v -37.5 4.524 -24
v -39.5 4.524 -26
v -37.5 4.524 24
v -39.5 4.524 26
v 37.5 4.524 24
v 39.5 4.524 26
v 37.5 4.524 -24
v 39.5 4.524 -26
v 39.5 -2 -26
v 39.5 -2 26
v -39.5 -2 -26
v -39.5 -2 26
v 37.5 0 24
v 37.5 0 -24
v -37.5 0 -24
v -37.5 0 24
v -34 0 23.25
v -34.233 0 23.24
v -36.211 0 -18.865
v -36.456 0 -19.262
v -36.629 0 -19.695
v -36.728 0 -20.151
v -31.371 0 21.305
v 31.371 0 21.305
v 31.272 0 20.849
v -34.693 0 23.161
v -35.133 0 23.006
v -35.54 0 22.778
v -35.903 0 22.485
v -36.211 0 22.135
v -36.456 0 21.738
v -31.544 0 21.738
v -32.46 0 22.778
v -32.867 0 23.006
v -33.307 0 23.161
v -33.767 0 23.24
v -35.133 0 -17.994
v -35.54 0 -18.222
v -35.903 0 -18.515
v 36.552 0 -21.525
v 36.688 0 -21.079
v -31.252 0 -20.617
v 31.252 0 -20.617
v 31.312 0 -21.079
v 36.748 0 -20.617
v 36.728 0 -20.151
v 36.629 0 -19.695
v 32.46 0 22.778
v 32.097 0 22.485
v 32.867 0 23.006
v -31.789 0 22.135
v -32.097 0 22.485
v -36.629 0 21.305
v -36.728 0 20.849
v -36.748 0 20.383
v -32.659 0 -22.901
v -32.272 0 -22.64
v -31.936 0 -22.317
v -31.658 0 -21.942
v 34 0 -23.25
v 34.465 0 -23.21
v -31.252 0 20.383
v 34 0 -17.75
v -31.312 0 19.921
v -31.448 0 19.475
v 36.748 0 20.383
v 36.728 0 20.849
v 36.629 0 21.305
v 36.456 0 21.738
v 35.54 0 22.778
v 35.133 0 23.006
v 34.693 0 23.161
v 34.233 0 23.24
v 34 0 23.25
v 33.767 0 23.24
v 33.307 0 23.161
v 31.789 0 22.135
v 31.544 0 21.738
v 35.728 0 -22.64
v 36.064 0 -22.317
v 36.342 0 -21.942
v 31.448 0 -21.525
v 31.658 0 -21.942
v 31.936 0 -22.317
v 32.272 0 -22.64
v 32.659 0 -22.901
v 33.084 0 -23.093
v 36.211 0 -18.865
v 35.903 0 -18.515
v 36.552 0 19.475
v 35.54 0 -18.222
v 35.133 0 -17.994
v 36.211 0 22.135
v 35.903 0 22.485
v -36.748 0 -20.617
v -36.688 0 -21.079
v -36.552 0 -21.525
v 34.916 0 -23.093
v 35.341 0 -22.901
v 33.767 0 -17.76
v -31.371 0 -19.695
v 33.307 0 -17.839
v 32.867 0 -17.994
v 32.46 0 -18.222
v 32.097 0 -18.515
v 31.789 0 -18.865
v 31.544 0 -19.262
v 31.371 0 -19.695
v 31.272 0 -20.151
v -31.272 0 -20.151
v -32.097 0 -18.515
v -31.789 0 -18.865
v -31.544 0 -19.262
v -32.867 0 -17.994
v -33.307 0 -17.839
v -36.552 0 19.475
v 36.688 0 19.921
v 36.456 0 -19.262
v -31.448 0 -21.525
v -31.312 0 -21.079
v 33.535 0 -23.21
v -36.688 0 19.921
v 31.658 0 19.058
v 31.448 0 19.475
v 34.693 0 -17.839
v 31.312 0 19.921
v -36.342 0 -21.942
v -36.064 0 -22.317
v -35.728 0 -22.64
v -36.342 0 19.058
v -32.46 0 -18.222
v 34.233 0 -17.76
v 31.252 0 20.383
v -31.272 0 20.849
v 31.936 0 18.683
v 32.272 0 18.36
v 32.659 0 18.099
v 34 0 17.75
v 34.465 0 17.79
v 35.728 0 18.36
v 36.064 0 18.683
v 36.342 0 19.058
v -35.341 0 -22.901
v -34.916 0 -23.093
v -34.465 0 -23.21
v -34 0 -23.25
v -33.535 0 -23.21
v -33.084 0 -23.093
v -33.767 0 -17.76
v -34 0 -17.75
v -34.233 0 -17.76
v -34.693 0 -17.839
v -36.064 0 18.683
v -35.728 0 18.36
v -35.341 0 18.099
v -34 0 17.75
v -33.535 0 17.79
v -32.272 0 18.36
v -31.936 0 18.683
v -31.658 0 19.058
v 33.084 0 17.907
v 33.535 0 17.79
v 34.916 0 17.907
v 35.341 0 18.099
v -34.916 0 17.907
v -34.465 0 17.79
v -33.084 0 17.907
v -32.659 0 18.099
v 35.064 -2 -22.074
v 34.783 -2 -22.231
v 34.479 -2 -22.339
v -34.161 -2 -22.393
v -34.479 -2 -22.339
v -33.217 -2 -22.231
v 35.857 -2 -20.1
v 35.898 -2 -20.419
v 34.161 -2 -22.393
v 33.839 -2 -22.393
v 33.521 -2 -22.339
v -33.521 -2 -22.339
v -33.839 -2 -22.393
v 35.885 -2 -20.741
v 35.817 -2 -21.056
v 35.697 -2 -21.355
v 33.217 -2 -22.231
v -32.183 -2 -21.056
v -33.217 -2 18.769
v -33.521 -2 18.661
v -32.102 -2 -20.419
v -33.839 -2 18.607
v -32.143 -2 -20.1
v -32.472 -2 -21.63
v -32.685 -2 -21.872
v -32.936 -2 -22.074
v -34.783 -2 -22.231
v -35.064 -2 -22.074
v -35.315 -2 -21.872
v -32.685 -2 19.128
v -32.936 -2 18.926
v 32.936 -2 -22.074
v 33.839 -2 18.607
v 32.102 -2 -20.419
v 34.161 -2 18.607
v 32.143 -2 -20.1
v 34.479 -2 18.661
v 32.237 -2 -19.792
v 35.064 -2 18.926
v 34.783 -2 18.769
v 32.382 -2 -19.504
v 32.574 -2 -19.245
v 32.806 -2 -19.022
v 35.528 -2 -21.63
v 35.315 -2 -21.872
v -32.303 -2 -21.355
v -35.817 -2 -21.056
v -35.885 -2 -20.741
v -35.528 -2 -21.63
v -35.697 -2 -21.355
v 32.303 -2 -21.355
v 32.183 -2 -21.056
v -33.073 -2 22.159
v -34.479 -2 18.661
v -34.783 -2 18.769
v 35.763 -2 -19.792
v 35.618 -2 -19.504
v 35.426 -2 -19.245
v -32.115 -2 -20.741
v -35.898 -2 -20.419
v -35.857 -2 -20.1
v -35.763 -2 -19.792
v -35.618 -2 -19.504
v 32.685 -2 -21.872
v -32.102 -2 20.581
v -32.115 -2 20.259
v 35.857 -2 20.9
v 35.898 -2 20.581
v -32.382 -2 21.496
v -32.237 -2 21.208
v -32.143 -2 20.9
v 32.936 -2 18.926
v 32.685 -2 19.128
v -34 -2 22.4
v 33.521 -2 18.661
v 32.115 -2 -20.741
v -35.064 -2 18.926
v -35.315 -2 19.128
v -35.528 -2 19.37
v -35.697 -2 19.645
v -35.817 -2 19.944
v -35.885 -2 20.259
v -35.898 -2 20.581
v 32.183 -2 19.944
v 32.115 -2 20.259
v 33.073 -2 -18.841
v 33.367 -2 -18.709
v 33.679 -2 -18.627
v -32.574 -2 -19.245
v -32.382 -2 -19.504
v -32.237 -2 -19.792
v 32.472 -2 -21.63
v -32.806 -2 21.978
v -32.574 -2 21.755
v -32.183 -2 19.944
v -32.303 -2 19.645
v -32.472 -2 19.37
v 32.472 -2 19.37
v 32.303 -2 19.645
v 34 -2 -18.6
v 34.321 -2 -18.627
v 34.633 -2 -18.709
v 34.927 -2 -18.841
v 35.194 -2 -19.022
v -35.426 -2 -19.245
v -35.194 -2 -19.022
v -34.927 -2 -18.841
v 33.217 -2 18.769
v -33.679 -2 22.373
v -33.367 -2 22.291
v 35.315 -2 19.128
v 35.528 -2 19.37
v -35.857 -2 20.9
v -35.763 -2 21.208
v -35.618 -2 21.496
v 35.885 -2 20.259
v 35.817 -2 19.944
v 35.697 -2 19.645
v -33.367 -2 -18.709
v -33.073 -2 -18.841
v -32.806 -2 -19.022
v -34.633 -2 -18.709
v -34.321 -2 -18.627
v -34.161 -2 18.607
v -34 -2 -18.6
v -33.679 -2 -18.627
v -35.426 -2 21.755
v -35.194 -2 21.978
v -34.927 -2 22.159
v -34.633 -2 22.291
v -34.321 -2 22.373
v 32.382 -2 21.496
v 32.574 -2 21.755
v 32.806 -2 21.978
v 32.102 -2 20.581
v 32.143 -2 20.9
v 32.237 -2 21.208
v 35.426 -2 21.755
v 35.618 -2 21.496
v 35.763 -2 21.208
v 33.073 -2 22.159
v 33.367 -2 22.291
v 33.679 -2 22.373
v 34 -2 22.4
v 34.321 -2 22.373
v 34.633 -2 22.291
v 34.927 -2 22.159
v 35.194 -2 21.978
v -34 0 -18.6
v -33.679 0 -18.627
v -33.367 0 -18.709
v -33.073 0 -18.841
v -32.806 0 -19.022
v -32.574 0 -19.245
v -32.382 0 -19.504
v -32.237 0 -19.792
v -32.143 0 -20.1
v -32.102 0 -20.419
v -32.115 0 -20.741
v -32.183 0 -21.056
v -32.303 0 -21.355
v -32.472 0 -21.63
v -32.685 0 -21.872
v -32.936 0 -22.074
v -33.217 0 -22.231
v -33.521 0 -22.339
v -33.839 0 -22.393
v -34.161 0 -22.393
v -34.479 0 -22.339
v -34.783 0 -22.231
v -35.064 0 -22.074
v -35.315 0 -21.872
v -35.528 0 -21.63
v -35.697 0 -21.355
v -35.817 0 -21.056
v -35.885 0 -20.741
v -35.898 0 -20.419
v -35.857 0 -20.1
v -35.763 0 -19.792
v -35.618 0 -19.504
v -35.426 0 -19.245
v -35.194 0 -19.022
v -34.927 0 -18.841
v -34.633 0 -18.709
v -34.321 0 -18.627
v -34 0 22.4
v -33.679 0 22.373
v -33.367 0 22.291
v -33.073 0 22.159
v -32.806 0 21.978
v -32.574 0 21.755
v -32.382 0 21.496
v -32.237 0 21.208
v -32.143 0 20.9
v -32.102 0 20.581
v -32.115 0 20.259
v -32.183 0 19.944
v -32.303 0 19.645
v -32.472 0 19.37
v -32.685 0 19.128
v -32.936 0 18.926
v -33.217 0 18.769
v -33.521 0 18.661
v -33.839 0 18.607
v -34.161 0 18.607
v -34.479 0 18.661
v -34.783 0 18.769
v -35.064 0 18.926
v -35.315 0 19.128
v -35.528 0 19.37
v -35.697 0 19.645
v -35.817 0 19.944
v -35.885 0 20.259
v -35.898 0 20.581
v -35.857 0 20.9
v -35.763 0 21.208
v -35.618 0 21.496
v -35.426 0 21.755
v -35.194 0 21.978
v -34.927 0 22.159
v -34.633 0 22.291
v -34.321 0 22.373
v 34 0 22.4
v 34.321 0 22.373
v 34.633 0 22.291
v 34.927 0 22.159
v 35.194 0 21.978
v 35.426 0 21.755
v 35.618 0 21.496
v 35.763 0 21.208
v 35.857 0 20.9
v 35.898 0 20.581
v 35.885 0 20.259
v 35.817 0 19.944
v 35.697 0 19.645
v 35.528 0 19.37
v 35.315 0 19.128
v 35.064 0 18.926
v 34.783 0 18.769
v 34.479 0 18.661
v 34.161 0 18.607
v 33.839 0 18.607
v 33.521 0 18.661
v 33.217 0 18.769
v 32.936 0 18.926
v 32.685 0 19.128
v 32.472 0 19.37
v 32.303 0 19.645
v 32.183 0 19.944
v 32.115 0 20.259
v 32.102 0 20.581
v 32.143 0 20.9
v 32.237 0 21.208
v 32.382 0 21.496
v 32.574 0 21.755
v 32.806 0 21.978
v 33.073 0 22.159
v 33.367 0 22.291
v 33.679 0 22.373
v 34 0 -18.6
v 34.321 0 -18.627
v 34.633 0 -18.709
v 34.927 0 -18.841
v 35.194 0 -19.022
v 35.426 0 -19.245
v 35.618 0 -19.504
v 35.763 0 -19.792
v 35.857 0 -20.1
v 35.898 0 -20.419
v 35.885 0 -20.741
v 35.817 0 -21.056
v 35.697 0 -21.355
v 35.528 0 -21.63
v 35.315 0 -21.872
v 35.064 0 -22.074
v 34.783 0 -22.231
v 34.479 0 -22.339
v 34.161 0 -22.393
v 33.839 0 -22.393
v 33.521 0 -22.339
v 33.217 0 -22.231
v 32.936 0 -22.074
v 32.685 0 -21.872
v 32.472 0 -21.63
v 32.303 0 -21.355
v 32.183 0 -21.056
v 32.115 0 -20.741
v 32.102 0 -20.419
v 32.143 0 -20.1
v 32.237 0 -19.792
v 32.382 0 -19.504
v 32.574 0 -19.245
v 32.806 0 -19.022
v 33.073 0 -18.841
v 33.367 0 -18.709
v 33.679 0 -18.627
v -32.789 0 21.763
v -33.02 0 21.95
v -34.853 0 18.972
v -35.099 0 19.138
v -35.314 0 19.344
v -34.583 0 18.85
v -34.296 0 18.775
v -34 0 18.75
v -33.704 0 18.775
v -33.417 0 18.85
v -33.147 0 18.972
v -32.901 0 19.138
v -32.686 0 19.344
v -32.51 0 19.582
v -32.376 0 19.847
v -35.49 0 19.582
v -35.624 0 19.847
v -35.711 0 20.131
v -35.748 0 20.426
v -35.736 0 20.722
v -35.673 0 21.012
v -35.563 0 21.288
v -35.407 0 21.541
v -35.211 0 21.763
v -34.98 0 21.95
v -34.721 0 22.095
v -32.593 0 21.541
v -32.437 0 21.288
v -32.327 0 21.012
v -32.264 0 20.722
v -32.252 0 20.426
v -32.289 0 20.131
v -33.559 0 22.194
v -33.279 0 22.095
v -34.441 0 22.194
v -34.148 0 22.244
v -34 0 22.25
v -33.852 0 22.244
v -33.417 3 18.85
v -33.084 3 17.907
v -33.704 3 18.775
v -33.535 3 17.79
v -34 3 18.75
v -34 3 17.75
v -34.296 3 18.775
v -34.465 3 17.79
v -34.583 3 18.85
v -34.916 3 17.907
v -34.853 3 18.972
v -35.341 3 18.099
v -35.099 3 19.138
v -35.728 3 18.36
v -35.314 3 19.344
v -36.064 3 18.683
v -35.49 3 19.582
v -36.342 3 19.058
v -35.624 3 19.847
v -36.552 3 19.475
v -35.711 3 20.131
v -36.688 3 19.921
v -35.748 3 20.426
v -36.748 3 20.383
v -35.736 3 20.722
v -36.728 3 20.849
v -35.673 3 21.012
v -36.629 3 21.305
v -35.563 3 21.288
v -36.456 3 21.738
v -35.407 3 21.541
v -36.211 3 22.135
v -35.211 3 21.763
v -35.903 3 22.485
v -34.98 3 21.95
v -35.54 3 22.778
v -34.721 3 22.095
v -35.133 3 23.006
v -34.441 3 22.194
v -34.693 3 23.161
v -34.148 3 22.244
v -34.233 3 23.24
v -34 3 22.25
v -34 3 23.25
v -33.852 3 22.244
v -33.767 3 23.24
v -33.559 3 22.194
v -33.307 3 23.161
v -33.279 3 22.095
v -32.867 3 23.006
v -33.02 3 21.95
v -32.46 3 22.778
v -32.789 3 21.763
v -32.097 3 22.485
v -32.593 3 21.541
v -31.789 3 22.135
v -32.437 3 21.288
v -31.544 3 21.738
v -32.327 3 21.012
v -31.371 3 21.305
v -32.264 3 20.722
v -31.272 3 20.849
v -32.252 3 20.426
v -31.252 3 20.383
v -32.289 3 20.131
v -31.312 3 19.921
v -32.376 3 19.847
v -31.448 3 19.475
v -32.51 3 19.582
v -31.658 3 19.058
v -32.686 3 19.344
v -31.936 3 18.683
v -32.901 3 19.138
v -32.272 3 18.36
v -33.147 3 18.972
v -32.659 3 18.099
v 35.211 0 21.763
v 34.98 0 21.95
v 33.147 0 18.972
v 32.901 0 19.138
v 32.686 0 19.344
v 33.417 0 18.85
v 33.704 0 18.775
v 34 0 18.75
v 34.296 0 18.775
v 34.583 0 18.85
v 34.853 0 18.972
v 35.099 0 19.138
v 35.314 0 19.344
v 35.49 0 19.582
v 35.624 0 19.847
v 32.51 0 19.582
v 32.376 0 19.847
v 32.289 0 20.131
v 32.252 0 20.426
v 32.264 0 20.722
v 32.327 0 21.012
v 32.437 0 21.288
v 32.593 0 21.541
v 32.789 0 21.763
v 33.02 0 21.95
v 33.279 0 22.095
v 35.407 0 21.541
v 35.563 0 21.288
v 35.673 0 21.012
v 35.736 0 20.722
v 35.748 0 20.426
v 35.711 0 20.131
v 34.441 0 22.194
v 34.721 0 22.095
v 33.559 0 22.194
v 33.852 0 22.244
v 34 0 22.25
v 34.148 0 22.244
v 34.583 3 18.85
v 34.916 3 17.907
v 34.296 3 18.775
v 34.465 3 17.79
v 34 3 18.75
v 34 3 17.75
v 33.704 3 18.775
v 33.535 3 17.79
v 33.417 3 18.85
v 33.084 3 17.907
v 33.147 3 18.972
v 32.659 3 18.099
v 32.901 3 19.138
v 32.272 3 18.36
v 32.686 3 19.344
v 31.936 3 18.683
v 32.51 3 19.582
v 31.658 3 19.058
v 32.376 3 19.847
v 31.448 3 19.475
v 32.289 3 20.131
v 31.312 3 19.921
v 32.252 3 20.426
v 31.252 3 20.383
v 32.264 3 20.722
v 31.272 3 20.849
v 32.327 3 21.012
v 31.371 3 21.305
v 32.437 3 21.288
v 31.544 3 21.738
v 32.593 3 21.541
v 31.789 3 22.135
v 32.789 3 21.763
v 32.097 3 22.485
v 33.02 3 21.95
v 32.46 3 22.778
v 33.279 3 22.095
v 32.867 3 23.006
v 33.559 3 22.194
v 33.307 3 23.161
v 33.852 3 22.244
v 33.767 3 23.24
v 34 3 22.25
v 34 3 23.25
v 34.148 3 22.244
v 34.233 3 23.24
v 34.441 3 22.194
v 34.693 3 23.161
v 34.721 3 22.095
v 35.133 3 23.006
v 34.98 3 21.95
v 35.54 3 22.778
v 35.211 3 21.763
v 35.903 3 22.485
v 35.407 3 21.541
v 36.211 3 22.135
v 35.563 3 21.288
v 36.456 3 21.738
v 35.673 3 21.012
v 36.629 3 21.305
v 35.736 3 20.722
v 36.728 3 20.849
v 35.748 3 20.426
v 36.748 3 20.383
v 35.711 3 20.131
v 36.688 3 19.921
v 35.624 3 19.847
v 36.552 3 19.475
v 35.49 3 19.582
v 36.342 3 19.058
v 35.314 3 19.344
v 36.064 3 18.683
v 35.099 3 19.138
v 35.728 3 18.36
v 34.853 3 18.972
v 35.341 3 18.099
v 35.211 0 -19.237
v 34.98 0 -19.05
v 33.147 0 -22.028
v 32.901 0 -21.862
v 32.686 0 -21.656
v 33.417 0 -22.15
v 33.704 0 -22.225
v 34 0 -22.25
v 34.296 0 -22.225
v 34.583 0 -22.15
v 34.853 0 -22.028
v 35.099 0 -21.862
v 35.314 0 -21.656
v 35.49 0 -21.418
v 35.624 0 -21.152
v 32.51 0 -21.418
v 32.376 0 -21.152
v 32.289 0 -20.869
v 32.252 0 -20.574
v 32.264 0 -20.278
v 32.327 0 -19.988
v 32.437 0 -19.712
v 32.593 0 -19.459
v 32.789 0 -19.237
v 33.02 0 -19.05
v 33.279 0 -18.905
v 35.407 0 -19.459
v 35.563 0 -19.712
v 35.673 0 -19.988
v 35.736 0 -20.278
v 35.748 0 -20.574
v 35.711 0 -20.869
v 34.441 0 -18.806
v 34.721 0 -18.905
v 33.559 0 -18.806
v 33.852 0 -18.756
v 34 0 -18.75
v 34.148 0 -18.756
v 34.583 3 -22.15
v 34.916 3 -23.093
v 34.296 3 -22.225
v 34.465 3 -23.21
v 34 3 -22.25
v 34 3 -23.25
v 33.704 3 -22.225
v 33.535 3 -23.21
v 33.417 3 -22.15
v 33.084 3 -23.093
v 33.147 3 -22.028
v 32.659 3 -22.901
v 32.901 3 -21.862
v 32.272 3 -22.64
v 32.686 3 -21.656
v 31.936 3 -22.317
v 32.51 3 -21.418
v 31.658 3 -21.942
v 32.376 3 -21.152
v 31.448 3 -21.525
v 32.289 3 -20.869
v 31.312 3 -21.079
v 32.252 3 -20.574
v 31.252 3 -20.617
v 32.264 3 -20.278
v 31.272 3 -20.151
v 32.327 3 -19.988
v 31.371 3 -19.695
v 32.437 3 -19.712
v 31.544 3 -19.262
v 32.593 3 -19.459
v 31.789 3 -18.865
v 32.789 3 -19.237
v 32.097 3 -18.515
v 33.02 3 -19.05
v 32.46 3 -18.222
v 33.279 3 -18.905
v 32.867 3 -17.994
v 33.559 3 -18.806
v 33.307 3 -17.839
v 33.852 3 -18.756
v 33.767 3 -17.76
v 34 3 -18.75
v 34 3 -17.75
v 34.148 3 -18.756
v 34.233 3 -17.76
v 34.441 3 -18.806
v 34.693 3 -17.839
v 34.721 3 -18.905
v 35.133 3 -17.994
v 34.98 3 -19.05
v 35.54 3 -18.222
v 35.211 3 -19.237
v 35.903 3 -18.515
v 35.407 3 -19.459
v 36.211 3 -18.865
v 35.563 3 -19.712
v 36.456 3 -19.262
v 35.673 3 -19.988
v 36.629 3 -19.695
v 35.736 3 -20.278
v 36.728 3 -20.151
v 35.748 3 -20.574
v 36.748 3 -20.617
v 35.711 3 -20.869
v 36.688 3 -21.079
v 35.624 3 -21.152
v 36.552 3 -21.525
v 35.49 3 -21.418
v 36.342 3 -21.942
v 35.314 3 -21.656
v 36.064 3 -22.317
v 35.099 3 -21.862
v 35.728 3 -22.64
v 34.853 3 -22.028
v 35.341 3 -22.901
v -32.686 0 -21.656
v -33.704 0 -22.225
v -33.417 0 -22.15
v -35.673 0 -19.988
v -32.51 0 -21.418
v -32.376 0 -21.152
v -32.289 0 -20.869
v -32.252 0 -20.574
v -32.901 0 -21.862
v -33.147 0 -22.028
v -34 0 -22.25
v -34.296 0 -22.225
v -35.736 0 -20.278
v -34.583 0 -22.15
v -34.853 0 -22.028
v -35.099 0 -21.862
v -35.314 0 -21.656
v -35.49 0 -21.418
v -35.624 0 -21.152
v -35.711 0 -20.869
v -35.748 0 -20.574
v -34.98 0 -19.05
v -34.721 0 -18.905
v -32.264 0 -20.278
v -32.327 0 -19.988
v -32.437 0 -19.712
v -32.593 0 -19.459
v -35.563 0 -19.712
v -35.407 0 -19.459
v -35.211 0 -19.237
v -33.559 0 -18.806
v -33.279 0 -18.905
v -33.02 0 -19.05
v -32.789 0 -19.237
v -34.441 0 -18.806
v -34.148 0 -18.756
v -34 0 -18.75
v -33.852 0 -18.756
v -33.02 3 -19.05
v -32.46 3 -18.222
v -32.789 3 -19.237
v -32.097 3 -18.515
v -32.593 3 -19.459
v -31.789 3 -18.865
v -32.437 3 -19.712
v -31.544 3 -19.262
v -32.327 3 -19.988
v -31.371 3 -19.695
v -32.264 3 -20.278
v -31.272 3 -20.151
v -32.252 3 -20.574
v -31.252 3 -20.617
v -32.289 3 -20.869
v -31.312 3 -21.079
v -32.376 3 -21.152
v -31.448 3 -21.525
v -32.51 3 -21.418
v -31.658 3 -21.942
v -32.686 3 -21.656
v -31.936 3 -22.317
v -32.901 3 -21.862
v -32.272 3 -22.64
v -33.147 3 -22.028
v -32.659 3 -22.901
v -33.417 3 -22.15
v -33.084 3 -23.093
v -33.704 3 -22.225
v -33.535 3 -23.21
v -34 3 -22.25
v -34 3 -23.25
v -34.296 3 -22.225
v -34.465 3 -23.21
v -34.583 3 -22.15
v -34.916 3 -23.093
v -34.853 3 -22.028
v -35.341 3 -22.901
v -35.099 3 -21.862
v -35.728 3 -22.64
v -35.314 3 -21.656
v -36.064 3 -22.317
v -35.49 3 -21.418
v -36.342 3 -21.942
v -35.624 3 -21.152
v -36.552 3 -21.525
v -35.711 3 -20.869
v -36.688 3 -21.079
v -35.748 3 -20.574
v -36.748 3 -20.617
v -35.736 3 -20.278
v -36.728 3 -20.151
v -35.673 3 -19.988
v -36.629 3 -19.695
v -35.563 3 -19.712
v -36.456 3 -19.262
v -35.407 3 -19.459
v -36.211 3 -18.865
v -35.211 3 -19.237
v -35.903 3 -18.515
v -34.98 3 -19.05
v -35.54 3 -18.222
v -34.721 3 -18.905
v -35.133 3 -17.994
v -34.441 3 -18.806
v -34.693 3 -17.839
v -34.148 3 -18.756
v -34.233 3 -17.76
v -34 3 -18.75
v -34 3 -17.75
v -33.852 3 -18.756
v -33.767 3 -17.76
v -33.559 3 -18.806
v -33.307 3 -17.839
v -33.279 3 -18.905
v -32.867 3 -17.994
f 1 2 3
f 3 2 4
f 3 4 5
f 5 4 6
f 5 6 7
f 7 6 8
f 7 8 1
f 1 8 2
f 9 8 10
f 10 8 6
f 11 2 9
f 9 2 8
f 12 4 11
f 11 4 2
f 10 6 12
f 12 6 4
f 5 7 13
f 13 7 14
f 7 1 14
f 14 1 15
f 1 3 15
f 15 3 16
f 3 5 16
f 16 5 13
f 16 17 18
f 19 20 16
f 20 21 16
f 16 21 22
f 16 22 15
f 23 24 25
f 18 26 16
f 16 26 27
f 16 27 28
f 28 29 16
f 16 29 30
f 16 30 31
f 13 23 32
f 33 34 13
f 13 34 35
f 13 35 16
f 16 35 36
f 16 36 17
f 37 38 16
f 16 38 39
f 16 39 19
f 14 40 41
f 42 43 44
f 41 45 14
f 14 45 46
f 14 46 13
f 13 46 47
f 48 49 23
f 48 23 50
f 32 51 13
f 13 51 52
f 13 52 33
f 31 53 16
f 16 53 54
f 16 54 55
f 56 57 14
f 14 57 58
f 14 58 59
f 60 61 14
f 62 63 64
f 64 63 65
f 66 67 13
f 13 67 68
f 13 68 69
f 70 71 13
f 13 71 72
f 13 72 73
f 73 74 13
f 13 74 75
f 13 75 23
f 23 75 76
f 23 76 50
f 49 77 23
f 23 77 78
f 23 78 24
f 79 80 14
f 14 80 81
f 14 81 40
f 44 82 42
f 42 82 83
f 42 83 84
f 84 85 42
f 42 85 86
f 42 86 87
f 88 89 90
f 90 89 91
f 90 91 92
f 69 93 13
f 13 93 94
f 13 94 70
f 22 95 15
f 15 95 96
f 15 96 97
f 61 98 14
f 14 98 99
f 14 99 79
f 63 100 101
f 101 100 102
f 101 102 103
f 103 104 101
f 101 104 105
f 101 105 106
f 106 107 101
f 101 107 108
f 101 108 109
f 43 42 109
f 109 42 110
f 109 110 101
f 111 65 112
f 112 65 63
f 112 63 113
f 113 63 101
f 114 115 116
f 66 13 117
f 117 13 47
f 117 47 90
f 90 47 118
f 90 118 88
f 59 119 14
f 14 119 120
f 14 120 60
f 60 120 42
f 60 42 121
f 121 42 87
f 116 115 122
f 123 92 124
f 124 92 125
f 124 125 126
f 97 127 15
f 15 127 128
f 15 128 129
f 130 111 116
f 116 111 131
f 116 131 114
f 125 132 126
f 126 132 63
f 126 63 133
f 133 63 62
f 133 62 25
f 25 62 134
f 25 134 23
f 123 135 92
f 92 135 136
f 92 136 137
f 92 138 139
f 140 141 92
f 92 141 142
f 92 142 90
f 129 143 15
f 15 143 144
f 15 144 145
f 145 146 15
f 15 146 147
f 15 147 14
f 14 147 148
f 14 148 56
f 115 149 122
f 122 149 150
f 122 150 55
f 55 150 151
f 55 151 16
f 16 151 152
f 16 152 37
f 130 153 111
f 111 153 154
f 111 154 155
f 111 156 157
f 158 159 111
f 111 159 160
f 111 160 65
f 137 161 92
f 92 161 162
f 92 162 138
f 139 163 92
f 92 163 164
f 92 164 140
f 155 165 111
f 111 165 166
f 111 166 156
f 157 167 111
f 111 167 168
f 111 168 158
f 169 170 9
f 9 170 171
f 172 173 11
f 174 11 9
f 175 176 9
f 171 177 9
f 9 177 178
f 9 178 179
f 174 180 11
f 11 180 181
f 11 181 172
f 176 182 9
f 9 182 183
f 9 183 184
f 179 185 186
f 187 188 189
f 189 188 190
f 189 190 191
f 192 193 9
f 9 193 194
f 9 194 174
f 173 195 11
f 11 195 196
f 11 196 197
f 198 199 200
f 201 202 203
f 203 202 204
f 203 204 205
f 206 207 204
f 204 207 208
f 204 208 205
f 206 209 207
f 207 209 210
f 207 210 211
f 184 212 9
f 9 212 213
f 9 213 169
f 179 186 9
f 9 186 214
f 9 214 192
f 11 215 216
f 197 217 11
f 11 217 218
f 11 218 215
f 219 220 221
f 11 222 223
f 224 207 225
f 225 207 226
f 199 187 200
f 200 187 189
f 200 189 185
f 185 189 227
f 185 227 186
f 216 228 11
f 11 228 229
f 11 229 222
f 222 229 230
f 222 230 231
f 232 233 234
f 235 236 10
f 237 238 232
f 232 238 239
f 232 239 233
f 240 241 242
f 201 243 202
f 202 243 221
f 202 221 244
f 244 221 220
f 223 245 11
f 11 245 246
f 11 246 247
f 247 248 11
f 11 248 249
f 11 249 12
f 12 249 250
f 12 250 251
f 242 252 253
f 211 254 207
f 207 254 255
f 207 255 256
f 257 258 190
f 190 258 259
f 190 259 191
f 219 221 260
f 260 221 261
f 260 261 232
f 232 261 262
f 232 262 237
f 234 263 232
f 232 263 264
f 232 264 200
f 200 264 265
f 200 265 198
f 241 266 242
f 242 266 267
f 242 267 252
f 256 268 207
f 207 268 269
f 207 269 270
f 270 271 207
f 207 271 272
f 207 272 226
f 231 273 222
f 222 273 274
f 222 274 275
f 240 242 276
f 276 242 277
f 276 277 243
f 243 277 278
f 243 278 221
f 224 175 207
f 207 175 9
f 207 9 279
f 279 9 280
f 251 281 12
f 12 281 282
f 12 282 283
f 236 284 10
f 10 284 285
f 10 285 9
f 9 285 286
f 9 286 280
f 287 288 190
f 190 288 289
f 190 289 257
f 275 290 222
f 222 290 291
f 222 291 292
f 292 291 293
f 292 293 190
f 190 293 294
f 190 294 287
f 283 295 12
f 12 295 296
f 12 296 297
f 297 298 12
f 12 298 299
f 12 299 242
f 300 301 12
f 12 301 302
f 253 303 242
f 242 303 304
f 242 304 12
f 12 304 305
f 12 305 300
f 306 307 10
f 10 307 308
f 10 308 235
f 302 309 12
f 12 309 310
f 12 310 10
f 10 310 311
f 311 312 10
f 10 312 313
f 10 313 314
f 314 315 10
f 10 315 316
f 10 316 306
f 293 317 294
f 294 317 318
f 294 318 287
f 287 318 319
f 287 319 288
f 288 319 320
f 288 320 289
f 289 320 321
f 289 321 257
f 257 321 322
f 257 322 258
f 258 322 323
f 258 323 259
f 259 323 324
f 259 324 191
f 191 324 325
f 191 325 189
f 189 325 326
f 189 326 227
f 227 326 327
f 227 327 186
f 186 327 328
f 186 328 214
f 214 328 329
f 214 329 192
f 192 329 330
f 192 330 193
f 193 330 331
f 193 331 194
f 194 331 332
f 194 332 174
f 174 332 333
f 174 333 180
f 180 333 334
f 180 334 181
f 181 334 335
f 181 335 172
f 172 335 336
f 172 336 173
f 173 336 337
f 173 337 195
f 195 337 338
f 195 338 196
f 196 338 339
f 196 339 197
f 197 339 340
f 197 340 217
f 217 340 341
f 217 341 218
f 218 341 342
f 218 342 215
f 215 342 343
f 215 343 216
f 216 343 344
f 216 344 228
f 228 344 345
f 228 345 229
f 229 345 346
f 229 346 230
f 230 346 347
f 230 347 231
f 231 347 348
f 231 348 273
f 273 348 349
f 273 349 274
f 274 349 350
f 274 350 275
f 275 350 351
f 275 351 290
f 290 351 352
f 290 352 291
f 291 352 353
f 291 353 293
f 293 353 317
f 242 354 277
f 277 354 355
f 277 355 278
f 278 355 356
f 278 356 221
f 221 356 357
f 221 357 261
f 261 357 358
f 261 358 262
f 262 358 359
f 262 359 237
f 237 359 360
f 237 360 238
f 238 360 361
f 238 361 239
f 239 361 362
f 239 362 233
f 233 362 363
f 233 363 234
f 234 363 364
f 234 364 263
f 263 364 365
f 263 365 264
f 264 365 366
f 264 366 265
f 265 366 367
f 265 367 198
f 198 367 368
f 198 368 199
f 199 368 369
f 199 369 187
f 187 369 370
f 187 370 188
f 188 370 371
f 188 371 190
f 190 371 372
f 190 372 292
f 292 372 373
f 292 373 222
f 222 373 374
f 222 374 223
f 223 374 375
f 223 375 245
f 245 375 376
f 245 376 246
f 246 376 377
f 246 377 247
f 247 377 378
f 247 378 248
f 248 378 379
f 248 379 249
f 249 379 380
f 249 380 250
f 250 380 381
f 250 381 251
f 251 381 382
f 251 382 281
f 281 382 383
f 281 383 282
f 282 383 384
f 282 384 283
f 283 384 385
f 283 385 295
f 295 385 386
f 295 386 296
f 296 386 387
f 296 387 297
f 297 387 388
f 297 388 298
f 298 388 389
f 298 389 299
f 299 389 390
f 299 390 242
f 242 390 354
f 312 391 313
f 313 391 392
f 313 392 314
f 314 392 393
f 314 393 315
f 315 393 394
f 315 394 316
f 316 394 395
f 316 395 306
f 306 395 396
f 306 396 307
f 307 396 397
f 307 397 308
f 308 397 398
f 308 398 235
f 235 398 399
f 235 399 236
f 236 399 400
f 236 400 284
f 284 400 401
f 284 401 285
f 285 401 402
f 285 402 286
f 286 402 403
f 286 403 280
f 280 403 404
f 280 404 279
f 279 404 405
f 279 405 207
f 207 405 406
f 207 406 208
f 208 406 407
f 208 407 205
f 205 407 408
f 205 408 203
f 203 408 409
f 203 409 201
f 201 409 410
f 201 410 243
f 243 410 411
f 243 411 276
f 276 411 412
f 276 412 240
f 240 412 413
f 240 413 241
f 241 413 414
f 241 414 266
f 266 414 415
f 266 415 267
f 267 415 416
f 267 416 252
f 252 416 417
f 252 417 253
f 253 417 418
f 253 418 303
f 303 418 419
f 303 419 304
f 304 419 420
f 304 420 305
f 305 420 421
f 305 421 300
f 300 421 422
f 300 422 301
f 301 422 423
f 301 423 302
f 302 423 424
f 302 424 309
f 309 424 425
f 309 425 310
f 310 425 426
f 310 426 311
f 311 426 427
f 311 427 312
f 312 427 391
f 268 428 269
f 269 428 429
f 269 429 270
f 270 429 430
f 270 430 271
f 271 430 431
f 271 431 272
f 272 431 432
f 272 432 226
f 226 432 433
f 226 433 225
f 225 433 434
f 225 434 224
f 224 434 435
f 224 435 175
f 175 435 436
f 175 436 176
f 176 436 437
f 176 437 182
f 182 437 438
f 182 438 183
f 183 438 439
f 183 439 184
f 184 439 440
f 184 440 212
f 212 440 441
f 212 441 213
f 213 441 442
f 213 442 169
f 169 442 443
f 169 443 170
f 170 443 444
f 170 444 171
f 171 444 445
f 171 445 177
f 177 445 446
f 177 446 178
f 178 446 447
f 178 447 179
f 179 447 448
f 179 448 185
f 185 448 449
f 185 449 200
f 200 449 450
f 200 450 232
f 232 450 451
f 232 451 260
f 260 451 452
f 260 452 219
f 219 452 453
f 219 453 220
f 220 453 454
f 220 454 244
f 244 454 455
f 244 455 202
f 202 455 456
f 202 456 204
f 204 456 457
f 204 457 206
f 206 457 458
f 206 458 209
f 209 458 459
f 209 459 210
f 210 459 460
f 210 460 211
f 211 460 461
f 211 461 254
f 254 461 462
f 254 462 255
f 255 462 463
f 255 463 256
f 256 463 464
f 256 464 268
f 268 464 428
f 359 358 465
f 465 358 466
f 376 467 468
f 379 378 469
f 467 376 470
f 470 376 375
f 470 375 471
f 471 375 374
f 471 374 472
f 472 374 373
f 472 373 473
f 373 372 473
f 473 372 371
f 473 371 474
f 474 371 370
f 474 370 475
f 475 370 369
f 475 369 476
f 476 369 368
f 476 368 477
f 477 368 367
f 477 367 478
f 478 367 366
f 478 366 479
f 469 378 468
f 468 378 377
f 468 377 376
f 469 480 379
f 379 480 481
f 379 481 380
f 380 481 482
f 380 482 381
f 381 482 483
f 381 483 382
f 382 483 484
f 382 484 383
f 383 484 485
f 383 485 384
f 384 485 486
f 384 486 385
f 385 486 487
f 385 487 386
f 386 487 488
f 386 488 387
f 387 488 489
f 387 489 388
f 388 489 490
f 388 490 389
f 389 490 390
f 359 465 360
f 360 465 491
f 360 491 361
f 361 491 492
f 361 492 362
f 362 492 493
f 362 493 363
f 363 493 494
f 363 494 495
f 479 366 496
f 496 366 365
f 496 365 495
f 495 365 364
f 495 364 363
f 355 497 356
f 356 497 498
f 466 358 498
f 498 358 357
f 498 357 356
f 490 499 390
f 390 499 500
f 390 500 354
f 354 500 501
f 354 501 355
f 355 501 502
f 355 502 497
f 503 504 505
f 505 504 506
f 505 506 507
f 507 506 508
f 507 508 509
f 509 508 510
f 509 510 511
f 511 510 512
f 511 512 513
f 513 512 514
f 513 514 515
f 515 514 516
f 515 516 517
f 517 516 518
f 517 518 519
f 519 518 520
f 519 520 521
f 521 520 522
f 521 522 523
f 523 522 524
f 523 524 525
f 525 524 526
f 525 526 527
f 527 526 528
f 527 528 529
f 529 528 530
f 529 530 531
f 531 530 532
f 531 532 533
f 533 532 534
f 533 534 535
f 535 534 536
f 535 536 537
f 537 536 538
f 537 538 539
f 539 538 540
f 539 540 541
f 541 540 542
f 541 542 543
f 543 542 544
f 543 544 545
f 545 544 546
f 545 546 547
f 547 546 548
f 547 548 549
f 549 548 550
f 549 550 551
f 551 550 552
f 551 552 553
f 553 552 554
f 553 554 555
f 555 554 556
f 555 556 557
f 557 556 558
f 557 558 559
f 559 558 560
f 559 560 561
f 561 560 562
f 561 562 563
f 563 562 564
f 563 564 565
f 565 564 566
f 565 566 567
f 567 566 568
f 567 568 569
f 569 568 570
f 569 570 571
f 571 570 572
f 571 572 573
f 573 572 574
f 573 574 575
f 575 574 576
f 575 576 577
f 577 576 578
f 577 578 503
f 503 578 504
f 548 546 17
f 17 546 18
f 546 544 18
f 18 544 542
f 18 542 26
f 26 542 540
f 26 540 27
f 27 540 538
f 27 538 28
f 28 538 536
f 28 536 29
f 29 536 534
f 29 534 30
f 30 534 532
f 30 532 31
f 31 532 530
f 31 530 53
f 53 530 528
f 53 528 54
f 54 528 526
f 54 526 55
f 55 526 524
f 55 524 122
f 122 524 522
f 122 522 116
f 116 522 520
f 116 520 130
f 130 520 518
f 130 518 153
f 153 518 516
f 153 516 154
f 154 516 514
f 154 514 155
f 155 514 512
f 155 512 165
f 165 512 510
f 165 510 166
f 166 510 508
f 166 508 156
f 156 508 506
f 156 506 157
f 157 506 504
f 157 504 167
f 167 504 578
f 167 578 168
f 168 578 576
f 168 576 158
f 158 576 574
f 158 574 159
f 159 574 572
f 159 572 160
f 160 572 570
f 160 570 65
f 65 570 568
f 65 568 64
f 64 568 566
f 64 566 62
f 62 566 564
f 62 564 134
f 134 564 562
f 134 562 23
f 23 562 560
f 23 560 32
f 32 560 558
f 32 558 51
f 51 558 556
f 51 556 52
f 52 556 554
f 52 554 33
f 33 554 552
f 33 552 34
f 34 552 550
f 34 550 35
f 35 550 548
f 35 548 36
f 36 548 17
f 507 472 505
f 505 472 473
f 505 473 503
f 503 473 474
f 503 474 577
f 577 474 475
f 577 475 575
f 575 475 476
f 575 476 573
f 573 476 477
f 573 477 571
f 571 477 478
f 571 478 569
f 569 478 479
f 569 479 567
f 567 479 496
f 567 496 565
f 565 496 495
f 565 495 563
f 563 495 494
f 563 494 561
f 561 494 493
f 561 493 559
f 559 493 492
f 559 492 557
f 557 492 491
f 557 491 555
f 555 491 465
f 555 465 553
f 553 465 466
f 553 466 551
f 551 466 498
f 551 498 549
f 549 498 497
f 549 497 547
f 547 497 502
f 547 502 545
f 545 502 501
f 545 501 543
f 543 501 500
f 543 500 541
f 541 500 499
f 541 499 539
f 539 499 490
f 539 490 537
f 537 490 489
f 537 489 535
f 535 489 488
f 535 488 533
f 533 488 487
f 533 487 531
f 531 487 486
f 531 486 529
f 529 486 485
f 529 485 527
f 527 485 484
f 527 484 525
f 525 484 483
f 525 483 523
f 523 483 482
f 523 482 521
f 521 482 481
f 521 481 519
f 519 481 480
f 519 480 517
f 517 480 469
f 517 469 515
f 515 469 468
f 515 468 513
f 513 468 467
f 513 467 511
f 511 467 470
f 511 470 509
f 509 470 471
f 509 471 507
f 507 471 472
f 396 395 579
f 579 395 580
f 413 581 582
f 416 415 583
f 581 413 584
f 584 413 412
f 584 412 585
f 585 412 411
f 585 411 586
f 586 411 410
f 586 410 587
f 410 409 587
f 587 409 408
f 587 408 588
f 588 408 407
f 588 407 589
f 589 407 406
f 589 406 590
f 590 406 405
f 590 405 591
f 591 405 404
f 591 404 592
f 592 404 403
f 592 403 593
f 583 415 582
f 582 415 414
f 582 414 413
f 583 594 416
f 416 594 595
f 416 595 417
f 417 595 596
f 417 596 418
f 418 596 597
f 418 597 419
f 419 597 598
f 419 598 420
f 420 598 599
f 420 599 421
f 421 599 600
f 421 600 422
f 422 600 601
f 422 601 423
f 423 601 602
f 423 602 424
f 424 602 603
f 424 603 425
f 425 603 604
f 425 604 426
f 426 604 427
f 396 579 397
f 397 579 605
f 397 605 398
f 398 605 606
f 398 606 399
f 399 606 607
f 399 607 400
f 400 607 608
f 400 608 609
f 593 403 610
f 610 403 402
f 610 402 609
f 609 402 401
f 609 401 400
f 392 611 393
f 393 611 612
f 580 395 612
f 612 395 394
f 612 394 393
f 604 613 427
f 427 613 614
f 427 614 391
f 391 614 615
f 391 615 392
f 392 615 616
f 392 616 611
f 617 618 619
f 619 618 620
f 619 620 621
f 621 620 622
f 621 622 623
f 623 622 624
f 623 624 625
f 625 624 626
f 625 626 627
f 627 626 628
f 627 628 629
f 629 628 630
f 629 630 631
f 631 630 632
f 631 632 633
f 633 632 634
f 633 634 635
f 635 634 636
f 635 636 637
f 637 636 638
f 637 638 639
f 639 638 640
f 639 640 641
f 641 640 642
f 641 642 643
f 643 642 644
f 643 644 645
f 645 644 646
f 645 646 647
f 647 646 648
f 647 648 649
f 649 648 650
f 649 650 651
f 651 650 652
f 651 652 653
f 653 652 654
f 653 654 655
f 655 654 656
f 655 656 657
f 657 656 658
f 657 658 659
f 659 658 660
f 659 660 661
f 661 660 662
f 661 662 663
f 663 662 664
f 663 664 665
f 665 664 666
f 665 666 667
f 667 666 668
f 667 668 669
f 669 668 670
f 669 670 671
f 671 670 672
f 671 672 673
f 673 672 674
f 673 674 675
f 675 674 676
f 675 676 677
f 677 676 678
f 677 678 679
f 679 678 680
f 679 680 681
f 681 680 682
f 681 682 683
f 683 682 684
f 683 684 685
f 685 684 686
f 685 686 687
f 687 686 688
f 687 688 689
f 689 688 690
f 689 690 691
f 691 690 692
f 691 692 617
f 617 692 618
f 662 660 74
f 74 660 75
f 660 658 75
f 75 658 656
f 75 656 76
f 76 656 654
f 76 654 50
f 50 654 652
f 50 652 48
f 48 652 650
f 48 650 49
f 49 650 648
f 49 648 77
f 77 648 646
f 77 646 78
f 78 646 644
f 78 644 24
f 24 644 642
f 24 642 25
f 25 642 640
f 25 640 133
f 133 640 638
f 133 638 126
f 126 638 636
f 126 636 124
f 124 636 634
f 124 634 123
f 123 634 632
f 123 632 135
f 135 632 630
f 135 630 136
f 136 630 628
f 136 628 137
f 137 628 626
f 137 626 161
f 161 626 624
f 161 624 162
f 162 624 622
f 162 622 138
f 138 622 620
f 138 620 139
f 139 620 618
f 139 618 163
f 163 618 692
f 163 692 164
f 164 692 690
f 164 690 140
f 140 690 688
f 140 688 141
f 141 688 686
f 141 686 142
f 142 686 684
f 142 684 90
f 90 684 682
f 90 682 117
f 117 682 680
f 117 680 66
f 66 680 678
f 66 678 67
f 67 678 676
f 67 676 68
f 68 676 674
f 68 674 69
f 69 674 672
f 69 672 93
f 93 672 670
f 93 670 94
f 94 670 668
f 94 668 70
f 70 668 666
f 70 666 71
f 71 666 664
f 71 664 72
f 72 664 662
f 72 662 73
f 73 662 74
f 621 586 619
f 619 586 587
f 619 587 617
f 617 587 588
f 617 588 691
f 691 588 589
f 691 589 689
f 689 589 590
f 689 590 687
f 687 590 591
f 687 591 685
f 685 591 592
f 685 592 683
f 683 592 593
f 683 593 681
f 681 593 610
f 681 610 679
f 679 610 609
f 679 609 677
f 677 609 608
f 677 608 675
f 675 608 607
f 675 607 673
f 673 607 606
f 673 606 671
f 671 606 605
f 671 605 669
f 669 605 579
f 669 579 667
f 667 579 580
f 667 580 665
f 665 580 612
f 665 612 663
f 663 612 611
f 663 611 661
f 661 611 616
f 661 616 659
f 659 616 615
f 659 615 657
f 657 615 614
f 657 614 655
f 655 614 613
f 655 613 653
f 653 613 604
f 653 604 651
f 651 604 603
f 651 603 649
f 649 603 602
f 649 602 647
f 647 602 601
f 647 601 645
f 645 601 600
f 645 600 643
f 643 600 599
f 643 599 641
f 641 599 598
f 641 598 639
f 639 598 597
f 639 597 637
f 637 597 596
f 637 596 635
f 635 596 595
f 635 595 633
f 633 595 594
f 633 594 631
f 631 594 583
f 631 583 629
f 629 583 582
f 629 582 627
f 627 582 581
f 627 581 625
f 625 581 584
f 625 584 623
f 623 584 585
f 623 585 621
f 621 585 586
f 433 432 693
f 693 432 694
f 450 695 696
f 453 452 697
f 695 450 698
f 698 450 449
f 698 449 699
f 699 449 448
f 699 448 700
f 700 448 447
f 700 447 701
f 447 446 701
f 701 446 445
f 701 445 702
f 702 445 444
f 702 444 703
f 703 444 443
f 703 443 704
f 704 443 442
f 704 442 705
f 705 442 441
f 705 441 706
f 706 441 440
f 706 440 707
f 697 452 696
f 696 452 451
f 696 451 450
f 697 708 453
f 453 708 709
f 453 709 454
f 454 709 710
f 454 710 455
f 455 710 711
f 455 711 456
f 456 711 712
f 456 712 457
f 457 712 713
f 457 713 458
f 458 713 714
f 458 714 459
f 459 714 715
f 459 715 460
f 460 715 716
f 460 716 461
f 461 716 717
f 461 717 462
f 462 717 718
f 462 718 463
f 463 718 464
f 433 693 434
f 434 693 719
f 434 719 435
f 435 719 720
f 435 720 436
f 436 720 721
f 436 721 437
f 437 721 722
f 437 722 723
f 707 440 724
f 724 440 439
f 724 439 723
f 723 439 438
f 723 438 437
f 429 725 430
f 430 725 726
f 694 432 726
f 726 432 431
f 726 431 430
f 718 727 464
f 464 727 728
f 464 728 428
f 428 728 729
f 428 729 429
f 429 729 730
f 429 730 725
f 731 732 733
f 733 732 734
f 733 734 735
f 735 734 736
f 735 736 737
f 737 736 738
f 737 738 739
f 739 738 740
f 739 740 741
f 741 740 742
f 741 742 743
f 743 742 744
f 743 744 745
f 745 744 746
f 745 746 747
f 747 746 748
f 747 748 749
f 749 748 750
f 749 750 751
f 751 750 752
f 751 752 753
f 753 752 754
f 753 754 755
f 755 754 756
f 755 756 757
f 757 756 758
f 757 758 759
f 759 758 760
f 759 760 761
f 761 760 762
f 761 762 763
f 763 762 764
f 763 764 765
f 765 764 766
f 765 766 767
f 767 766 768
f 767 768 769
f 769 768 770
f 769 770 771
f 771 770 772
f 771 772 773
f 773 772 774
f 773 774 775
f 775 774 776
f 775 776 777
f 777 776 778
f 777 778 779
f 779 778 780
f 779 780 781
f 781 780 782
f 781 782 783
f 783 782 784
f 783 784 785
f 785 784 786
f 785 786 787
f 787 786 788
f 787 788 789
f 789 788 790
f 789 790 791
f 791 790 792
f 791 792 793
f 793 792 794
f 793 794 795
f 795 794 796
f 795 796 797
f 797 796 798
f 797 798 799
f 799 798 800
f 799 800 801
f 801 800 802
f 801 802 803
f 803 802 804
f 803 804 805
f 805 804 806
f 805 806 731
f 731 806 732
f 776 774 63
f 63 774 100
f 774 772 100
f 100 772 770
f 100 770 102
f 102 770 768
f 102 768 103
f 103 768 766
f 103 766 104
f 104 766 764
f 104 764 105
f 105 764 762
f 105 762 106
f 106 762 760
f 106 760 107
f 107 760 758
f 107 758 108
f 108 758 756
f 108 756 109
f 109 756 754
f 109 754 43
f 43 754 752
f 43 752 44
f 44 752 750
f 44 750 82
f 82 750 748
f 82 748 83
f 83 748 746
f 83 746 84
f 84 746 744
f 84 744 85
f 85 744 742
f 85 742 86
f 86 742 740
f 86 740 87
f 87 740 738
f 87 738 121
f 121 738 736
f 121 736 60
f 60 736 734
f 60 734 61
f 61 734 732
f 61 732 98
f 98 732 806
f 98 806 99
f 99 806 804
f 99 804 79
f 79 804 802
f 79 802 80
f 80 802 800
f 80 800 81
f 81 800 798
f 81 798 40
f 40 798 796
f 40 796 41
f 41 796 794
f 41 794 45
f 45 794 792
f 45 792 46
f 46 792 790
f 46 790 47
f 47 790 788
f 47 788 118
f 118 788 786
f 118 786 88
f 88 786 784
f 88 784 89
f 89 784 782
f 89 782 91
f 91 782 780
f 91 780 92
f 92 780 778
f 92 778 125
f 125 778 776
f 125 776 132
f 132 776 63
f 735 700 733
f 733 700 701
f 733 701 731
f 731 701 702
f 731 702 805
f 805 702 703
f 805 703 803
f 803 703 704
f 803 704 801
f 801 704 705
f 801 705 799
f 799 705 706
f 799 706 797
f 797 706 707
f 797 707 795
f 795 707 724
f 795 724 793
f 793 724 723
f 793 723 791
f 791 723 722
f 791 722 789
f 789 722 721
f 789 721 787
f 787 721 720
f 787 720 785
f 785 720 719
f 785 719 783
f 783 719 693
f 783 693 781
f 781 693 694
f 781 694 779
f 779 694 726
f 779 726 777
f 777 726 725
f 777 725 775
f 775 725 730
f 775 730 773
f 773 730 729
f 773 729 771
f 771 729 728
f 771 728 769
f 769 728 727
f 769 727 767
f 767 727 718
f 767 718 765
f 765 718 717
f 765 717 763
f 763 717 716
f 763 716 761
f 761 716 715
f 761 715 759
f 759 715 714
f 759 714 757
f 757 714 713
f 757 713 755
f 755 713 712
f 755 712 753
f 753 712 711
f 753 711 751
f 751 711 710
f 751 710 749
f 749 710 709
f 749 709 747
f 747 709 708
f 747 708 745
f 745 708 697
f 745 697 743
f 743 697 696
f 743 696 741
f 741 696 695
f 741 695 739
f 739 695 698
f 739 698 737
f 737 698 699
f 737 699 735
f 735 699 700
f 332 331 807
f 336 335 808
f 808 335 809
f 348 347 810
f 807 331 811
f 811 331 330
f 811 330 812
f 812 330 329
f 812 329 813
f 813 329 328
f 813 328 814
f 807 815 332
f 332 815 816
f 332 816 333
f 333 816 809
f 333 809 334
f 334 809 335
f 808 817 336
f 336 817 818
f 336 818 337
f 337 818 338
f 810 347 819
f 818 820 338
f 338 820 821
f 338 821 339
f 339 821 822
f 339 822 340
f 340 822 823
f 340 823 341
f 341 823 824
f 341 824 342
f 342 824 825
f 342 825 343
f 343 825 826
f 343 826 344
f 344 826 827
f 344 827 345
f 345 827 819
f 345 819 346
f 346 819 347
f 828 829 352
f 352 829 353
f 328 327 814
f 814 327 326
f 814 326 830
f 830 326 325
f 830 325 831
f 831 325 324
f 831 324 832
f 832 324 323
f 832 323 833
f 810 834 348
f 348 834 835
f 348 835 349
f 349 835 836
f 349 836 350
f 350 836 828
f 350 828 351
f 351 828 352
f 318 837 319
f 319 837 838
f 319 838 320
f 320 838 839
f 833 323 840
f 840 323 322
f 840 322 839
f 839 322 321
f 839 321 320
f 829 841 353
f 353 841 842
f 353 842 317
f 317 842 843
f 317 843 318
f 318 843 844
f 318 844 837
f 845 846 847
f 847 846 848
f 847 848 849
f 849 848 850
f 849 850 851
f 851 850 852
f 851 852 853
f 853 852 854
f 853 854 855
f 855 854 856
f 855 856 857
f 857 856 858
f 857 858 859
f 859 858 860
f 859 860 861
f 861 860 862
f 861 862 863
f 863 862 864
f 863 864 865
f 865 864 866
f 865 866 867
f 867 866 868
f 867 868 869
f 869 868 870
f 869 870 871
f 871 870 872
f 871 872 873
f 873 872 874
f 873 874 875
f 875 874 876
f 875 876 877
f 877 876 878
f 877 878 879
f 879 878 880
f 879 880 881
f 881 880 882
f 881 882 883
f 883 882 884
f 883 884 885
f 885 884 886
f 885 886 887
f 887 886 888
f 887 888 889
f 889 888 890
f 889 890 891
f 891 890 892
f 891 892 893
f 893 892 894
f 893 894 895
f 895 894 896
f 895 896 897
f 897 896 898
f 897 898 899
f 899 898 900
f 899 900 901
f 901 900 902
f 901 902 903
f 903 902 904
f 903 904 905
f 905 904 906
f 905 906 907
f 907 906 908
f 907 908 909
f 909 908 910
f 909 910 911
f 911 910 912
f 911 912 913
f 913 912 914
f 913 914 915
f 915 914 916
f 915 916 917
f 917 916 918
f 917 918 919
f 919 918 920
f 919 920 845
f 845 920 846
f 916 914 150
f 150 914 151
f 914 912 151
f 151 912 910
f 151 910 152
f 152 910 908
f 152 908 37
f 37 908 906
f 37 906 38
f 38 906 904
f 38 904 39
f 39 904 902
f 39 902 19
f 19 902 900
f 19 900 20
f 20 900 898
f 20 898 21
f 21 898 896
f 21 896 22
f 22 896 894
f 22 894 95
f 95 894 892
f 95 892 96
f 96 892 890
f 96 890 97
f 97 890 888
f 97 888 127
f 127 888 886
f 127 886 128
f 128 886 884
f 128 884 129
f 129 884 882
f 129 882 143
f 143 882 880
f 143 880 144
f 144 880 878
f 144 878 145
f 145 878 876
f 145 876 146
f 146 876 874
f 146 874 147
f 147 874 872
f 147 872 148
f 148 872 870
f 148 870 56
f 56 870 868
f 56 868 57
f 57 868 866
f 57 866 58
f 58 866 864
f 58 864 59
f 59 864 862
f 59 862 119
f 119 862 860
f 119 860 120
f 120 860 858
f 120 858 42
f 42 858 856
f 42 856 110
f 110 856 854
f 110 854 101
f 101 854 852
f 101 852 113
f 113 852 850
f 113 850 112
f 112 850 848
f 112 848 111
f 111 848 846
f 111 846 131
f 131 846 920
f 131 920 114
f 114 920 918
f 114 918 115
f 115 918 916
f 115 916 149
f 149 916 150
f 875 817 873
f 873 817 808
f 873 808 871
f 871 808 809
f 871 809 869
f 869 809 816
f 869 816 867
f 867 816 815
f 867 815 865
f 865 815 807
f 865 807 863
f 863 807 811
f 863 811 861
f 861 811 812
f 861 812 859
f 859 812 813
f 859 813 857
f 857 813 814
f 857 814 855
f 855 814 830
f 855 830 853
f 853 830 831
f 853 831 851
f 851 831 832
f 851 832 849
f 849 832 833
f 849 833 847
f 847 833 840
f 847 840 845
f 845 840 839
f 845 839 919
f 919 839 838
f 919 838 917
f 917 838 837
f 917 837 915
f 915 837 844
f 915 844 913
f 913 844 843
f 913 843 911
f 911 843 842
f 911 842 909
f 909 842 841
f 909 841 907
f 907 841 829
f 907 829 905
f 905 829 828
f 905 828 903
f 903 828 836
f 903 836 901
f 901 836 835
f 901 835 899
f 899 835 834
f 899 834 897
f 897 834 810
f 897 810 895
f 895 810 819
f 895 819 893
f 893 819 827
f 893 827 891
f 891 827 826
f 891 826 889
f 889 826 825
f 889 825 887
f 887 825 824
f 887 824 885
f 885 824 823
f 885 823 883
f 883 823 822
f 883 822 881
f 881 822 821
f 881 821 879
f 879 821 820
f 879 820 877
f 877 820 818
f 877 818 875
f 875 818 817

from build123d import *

# Parameters (mm, degrees)
SKETCH1_W           = 79
SKETCH1_H           = 52
SKETCH1_W_2         = 75
SKETCH1_H_2         = 48
BOSS_EXTRUDE1_DEPTH = 4.524
SKETCH2_W           = 79
SKETCH2_H           = 52
BOSS_EXTRUDE2_DEPTH = 2
SKETCH3_R           = 1.9
CUT_EXTRUDE1_DEPTH  = 2
SKETCH4_R           = 2.75
SKETCH4_R_2         = 1.75
BOSS_EXTRUDE3_DEPTH = 3


with BuildPart() as part:
    # Sketch1 → Boss-Extrude1 (new body)
    with BuildSketch(Plane(origin=(0, 0, 0), x_dir=(1, 0, 0), z_dir=(0, 1, 0))):
        Rectangle(SKETCH1_W, SKETCH1_H)
        Rectangle(SKETCH1_W_2, SKETCH1_H_2, mode=Mode.SUBTRACT)
    extrude(amount=BOSS_EXTRUDE1_DEPTH)

    # Sketch2 → Boss-Extrude2 (add)
    with BuildSketch(Plane.XZ):
        Rectangle(SKETCH2_W, SKETCH2_H)
    extrude(amount=BOSS_EXTRUDE2_DEPTH)

    # Sketch3 → Cut-Extrude1 (cut)
    with BuildSketch(Plane(origin=(0, 0, 0), x_dir=(1, 0, 0), z_dir=(0, 1, 0))):
        with Locations(Location((-34, 20.5, 0), (0, 0, 270))):
            Circle(SKETCH3_R)
        with Locations(Location((34, 20.5, 0), (0, 0, 270))):
            Circle(SKETCH3_R)
        with Locations(Location((34, -20.5, 0), (0, 0, 270))):
            Circle(SKETCH3_R)
        with Locations(Location((-34, -20.5, 0), (0, 0, 270))):
            Circle(SKETCH3_R)
    extrude(amount=-CUT_EXTRUDE1_DEPTH, mode=Mode.SUBTRACT)

    # Sketch4 → Boss-Extrude3 (add)
    # profile 1 of 4: a face of its own
    with BuildSketch(Plane(origin=(0, 0, 0), x_dir=(1, 0, 0), z_dir=(0, 1, 0))):
        with Locations(Location((-34, -20.5, 0), (0, 0, 270))):
            Circle(SKETCH4_R)
        with Locations(Location((-34, -20.5, 0), (0, 0, 270))):
            Circle(SKETCH4_R_2, mode=Mode.SUBTRACT)
    # profile 2 of 4: a face of its own
    with BuildSketch(Plane(origin=(0, 0, 0), x_dir=(1, 0, 0), z_dir=(0, 1, 0))):
        with Locations(Location((34, -20.5, 0), (0, 0, 270))):
            Circle(SKETCH4_R)
        with Locations(Location((34, -20.5, 0), (0, 0, 270))):
            Circle(SKETCH4_R_2, mode=Mode.SUBTRACT)
    # profile 3 of 4: a face of its own
    with BuildSketch(Plane(origin=(0, 0, 0), x_dir=(1, 0, 0), z_dir=(0, 1, 0))):
        with Locations(Location((34, 20.5, 0), (0, 0, 270))):
            Circle(SKETCH4_R)
        with Locations(Location((34, 20.5, 0), (0, 0, 270))):
            Circle(SKETCH4_R_2, mode=Mode.SUBTRACT)
    # profile 4 of 4: a face of its own
    with BuildSketch(Plane(origin=(0, 0, 0), x_dir=(1, 0, 0), z_dir=(0, 1, 0))):
        with Locations(Location((-34, 20.5, 0), (0, 0, 270))):
            Circle(SKETCH4_R)
        with Locations(Location((-34, 20.5, 0), (0, 0, 270))):
            Circle(SKETCH4_R_2, mode=Mode.SUBTRACT)
    extrude(amount=BOSS_EXTRUDE3_DEPTH)


solid = part.part
